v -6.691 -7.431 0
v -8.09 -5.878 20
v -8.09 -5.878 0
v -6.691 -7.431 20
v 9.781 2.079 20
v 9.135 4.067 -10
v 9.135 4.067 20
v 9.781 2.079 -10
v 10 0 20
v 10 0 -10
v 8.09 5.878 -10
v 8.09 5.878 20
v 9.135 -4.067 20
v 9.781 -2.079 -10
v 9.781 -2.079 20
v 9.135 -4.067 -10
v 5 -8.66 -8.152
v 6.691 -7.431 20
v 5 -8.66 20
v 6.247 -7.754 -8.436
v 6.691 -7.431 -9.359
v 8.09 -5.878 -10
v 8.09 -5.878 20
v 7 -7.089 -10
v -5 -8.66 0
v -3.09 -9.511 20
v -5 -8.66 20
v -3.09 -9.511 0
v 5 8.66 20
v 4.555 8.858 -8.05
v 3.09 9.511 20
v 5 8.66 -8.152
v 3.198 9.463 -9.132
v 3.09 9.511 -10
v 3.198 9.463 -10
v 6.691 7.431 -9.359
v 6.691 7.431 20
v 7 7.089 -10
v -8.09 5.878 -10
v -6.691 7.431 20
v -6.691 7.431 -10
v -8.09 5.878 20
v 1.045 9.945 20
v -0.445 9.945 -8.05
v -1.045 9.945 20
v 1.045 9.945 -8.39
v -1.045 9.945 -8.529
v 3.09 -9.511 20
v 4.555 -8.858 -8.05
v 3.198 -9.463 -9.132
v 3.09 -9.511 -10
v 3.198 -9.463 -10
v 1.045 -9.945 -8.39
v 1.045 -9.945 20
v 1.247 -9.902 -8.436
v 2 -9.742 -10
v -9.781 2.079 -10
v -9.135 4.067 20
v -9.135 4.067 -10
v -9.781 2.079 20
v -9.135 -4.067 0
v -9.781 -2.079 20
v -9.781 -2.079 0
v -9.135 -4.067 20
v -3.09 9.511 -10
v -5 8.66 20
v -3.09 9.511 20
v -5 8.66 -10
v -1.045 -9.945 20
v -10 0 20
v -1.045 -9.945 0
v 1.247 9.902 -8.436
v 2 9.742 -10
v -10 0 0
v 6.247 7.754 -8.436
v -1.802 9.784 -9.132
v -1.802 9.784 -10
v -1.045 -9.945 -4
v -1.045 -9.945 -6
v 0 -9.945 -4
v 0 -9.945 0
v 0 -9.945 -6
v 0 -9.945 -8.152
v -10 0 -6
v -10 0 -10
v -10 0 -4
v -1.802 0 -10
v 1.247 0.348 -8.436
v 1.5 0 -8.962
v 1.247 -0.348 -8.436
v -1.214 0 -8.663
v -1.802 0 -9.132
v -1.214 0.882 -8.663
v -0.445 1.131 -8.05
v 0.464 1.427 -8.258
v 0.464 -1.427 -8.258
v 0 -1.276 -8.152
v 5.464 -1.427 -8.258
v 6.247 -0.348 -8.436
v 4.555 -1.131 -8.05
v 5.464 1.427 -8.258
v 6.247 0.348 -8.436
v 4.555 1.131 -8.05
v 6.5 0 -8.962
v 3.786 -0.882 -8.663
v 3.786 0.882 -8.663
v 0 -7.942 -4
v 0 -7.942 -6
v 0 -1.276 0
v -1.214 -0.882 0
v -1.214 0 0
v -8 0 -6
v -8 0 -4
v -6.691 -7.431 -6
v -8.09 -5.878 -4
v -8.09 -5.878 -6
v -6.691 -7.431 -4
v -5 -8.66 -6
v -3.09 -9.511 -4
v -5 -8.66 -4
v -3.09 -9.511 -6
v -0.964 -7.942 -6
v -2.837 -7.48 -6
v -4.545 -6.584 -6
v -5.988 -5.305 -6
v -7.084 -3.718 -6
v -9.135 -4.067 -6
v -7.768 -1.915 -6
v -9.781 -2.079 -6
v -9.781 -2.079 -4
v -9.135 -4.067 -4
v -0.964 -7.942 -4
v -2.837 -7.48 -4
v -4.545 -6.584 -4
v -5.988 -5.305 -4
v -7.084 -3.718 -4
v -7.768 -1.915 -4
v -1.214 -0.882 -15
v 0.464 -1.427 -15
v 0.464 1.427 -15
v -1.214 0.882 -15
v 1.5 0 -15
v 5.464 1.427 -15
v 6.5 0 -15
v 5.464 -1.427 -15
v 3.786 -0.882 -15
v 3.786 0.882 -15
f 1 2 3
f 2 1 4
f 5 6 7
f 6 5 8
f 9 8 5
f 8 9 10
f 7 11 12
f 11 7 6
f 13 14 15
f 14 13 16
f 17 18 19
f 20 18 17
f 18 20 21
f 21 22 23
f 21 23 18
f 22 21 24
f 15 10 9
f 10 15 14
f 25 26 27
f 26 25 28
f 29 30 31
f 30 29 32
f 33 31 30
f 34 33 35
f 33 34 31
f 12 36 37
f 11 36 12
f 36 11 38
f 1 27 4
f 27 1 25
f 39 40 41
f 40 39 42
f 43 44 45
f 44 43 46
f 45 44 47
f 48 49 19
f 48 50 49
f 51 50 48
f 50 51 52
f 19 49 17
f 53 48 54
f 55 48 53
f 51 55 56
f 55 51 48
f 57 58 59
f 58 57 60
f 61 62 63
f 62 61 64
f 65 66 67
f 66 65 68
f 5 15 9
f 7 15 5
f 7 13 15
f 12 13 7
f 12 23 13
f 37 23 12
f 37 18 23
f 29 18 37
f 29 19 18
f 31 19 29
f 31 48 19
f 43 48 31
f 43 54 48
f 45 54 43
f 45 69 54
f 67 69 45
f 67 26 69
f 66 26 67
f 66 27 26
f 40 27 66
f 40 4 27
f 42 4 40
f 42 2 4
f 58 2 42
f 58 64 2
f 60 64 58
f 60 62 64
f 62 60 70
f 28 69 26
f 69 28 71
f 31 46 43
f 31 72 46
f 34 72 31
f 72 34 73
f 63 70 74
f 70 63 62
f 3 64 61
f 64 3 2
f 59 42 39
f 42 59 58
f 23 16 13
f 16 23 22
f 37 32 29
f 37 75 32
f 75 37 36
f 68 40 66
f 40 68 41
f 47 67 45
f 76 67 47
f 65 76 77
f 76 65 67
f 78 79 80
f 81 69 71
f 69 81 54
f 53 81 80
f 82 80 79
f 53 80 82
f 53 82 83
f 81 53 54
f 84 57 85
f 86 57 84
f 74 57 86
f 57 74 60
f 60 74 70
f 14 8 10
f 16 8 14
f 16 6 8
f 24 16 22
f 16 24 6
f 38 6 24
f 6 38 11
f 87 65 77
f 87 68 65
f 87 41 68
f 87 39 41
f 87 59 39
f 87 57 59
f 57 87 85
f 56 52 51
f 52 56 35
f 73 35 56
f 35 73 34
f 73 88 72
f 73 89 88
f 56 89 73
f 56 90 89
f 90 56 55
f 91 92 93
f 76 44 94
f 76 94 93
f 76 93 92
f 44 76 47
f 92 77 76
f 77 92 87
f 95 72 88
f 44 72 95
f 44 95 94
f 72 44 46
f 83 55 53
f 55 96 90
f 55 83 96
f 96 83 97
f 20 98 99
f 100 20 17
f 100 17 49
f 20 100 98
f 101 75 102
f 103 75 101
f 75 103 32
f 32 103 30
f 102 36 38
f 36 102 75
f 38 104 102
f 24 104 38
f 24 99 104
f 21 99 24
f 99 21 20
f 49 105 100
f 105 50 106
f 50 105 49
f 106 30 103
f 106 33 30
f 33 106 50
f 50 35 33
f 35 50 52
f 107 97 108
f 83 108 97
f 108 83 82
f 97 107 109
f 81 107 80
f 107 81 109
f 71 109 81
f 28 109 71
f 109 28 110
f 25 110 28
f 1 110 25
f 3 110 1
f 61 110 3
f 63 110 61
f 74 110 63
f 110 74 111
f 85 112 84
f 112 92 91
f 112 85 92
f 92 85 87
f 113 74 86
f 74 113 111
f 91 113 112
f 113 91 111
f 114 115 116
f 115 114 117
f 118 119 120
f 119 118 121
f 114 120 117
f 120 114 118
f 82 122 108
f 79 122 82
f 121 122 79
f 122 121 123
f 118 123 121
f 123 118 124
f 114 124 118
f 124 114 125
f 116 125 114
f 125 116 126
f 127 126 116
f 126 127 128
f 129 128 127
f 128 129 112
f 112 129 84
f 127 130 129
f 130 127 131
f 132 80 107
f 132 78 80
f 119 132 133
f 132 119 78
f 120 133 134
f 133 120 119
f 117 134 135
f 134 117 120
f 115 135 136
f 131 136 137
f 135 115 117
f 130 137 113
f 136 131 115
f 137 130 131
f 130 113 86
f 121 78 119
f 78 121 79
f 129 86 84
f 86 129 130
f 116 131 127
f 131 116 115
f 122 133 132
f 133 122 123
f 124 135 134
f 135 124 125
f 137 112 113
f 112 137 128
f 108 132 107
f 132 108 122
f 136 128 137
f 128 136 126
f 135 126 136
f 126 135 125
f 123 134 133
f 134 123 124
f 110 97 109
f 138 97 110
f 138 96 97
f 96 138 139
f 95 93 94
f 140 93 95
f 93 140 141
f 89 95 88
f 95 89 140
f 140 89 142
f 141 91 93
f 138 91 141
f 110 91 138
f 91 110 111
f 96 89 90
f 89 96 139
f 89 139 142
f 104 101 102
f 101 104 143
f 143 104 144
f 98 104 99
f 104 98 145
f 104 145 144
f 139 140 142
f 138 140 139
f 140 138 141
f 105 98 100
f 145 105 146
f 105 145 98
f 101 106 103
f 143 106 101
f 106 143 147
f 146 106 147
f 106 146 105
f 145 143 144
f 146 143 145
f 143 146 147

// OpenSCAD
// Parameters for the model
module input_clamping_cylinder() {
    difference() {
        cylinder(h = 20, r = 10, center = true);
        // Precision-drilled holes
        translate([0, 0, -10]) rotate([90, 0, 0]) cylinder(h = 40, r = 2, center = true);
        translate([5, 0, -10]) rotate([90, 0, 0]) cylinder(h = 40, r = 2, center = true);
        // Slotted openings
        translate([-10, -5, -10]) cube([20, 10, 20], center = true);
    }
}

module output_clamping_cylinder() {
    difference() {
        cylinder(h = 20, r = 10, center = true);
        // Precision-drilled holes
        translate([0, 0, -10]) rotate([90, 0, 0]) cylinder(h = 40, r = 2, center = true);
        translate([5, 0, -10]) rotate([90, 0, 0]) cylinder(h = 40, r = 2, center = true);
        // Slotted openings
        translate([-10, -5, -10]) cube([20, 10, 20], center = true);
    }
}

module elastic_spacer_ring() {
    difference() {
        cylinder(h = 2, r = 10, center = true);
        cylinder(h = 2, r = 8, center = true);
    }
}

module bolt() {
    cylinder(h = 30, r = 1.5, center = true);
}

module threaded_nut() {
    difference() {
        cylinder(h = 3, r = 3, center = true);
        cylinder(h = 3, r = 1.5, center = true);
    }
}

// Assembly
module flexible_coupling() {
    // Layer 1: Input clamping cylinder
    translate([0, 0, 10]) input_clamping_cylinder();
    
    // Layer 2: First elastic spacer ring
    translate([0, 0, 5]) elastic_spacer_ring();
    
    // Layer 3: Output clamping cylinder
    translate([0, 0, 0]) output_clamping_cylinder();
    
    // Layer 4: Second elastic spacer ring
    translate([0, 0, -5]) elastic_spacer_ring();
    
    // Layer 5: Bolts and nuts
    translate([0, 0, 0]) bolt();
    translate([5, 0, 0]) bolt();
    translate([0, 0, 15]) threaded_nut();
    translate([5, 0, 15]) threaded_nut();
}

// Render the model
flexible_coupling();
